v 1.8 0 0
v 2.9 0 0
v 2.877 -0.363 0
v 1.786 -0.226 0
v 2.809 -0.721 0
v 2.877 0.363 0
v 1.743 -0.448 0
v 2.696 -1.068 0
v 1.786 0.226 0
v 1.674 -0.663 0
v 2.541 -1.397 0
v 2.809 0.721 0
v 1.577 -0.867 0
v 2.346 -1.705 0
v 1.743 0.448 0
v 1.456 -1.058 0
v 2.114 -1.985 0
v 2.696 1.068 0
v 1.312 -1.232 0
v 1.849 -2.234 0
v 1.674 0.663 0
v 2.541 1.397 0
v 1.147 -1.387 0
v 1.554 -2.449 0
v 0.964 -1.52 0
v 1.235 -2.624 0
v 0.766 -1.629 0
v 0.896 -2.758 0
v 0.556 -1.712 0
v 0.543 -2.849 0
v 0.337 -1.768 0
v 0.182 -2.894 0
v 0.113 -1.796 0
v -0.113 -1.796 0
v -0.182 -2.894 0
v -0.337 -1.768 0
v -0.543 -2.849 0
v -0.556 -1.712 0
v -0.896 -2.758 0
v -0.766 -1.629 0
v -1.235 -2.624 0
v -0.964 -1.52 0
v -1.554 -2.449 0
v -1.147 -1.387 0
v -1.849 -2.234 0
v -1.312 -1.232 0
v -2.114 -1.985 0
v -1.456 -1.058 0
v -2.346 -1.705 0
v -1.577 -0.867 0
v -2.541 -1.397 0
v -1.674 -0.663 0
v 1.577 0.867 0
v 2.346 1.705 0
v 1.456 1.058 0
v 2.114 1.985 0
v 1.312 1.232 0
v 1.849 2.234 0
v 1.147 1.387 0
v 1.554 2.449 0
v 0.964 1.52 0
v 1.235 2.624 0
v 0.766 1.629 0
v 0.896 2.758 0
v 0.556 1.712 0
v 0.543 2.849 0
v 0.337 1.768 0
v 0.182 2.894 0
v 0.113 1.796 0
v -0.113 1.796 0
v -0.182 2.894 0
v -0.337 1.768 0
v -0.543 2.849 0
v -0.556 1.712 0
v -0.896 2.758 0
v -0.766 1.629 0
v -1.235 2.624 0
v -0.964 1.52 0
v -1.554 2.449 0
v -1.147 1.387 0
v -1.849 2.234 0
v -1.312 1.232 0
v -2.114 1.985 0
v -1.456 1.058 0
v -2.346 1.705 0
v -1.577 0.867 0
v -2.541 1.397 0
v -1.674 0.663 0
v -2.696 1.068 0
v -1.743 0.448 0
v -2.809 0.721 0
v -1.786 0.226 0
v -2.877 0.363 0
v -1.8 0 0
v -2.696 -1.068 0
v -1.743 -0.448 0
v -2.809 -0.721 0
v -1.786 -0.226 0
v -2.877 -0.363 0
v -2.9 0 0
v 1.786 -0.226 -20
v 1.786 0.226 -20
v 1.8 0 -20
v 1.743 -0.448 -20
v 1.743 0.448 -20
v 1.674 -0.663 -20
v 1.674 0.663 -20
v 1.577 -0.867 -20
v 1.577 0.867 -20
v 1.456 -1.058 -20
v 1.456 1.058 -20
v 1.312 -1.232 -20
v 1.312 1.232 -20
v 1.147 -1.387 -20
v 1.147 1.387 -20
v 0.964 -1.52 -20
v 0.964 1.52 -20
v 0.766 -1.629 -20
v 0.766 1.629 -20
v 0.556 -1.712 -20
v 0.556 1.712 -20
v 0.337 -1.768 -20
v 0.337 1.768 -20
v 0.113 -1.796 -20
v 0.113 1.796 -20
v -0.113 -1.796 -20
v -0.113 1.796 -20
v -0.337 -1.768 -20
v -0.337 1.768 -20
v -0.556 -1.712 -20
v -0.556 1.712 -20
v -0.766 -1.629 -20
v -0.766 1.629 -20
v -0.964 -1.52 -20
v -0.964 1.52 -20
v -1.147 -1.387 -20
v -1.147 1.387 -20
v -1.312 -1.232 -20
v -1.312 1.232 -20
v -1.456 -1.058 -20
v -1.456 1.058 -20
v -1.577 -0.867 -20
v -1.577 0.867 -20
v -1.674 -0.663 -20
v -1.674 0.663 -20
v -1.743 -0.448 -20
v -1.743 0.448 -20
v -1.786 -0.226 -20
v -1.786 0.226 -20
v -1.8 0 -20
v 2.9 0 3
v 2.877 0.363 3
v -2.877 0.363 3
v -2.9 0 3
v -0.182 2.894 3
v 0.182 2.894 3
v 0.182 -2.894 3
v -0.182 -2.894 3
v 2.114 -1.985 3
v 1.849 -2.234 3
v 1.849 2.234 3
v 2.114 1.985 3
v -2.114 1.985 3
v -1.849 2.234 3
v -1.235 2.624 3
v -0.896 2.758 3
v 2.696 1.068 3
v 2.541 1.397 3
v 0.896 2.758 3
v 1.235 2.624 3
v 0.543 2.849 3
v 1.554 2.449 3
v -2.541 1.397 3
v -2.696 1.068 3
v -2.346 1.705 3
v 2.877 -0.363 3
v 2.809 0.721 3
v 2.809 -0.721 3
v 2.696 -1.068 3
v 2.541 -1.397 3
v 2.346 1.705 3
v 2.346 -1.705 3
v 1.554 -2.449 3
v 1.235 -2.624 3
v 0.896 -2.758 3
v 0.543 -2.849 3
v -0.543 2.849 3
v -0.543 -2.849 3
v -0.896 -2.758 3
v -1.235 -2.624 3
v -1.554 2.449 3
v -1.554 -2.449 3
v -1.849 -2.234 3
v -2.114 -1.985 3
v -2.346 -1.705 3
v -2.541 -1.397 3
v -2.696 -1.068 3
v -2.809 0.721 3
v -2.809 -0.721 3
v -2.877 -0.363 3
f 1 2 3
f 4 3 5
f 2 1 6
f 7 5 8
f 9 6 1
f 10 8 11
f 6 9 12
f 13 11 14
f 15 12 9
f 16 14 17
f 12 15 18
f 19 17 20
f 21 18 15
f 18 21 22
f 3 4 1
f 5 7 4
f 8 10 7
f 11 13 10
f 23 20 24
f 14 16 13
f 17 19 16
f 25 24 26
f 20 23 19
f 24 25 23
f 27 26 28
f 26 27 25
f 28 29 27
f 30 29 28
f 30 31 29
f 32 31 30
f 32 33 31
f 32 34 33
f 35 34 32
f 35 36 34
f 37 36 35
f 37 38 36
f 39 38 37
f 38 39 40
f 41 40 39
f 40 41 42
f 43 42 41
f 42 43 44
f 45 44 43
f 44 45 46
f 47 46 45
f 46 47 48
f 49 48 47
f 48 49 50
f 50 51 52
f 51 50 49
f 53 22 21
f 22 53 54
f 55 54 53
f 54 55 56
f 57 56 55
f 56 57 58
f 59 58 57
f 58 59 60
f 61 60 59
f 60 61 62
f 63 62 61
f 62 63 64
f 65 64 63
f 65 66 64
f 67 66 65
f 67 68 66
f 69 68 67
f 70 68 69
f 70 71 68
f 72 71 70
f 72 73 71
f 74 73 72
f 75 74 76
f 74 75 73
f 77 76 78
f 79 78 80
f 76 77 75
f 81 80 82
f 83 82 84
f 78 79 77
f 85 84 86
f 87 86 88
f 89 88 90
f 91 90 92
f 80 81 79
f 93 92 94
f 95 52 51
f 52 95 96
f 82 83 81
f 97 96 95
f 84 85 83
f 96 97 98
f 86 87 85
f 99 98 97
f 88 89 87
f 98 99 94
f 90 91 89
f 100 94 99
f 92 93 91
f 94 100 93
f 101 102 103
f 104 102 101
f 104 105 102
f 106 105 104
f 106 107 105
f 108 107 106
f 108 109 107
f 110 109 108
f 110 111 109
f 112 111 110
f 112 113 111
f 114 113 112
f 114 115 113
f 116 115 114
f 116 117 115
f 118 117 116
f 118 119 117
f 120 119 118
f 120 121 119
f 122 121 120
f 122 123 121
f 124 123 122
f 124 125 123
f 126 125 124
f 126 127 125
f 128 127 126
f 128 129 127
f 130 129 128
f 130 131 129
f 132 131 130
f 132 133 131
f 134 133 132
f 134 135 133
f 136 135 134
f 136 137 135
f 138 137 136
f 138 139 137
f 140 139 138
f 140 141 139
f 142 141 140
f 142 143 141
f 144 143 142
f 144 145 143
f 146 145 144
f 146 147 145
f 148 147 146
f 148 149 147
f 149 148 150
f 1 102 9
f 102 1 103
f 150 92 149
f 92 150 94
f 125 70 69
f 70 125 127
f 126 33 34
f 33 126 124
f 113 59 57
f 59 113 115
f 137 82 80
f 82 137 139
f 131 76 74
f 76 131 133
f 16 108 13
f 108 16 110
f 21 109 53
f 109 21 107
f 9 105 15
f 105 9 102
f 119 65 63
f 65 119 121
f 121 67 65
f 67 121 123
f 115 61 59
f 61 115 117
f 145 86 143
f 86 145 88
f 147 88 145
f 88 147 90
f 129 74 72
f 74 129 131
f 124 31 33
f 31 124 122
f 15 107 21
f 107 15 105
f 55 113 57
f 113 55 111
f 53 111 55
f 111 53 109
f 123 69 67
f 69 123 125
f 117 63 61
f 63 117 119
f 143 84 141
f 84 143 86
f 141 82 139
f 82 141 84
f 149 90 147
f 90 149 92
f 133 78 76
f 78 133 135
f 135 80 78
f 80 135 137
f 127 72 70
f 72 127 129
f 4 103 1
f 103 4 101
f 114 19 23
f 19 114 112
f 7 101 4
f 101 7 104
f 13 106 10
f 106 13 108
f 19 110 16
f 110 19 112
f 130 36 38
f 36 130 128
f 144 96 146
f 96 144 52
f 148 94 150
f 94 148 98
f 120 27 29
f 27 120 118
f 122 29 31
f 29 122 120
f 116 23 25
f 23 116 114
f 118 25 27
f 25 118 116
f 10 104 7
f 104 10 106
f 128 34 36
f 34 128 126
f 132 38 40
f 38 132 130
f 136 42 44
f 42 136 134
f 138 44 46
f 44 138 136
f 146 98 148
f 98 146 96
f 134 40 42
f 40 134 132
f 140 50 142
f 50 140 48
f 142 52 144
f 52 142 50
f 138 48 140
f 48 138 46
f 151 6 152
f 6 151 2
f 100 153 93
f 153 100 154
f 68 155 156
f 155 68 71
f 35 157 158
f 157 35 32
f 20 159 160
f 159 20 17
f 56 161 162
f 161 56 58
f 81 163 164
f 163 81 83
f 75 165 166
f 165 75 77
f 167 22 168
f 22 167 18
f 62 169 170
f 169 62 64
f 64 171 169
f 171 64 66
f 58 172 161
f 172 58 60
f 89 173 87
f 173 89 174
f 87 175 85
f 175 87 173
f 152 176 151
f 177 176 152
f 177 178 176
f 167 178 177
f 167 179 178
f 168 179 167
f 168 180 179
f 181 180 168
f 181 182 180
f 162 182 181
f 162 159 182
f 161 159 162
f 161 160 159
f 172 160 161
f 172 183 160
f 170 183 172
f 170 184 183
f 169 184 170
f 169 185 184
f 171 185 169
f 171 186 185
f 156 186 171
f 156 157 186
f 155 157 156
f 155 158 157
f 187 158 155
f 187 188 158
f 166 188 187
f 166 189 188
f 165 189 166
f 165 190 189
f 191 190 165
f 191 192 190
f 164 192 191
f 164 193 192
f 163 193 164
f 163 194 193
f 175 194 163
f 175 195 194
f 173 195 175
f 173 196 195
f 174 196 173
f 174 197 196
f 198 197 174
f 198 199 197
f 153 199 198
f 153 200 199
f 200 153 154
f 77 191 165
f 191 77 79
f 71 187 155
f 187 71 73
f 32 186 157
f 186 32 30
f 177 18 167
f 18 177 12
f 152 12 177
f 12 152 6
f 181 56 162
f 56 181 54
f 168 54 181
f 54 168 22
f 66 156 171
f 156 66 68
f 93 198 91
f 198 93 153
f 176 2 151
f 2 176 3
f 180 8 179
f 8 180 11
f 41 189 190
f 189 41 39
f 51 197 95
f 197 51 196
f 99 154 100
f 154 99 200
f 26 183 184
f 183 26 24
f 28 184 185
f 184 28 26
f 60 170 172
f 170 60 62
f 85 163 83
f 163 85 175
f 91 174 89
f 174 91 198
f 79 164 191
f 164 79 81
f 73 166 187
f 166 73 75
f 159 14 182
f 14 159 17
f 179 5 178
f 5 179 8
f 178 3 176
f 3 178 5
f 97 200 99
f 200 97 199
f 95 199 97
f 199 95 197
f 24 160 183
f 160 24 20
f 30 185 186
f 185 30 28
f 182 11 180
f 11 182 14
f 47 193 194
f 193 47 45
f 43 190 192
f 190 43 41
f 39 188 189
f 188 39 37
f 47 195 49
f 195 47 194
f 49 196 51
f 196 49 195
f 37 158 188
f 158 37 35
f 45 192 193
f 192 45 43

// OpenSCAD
$fn = 50;


difference() {
	union() {
		translate(v = [0, 0, 0]) {
			rotate(a = [0, 0, 0]) {
				difference() {
					union() {
						translate(v = [0, 0, -20.0000000000]) {
							cylinder(h = 20, r = 1.5000000000);
						}
						translate(v = [0, 0, -20.0000000000]) {
							cylinder(h = 20, r = 1.8000000000);
						}
						cylinder(h = 3, r = 2.9000000000);
						translate(v = [0, 0, -20.0000000000]) {
							cylinder(h = 20, r = 1.5000000000);
						}
					}
					union();
				}
			}
		}
	}
	union();
}
